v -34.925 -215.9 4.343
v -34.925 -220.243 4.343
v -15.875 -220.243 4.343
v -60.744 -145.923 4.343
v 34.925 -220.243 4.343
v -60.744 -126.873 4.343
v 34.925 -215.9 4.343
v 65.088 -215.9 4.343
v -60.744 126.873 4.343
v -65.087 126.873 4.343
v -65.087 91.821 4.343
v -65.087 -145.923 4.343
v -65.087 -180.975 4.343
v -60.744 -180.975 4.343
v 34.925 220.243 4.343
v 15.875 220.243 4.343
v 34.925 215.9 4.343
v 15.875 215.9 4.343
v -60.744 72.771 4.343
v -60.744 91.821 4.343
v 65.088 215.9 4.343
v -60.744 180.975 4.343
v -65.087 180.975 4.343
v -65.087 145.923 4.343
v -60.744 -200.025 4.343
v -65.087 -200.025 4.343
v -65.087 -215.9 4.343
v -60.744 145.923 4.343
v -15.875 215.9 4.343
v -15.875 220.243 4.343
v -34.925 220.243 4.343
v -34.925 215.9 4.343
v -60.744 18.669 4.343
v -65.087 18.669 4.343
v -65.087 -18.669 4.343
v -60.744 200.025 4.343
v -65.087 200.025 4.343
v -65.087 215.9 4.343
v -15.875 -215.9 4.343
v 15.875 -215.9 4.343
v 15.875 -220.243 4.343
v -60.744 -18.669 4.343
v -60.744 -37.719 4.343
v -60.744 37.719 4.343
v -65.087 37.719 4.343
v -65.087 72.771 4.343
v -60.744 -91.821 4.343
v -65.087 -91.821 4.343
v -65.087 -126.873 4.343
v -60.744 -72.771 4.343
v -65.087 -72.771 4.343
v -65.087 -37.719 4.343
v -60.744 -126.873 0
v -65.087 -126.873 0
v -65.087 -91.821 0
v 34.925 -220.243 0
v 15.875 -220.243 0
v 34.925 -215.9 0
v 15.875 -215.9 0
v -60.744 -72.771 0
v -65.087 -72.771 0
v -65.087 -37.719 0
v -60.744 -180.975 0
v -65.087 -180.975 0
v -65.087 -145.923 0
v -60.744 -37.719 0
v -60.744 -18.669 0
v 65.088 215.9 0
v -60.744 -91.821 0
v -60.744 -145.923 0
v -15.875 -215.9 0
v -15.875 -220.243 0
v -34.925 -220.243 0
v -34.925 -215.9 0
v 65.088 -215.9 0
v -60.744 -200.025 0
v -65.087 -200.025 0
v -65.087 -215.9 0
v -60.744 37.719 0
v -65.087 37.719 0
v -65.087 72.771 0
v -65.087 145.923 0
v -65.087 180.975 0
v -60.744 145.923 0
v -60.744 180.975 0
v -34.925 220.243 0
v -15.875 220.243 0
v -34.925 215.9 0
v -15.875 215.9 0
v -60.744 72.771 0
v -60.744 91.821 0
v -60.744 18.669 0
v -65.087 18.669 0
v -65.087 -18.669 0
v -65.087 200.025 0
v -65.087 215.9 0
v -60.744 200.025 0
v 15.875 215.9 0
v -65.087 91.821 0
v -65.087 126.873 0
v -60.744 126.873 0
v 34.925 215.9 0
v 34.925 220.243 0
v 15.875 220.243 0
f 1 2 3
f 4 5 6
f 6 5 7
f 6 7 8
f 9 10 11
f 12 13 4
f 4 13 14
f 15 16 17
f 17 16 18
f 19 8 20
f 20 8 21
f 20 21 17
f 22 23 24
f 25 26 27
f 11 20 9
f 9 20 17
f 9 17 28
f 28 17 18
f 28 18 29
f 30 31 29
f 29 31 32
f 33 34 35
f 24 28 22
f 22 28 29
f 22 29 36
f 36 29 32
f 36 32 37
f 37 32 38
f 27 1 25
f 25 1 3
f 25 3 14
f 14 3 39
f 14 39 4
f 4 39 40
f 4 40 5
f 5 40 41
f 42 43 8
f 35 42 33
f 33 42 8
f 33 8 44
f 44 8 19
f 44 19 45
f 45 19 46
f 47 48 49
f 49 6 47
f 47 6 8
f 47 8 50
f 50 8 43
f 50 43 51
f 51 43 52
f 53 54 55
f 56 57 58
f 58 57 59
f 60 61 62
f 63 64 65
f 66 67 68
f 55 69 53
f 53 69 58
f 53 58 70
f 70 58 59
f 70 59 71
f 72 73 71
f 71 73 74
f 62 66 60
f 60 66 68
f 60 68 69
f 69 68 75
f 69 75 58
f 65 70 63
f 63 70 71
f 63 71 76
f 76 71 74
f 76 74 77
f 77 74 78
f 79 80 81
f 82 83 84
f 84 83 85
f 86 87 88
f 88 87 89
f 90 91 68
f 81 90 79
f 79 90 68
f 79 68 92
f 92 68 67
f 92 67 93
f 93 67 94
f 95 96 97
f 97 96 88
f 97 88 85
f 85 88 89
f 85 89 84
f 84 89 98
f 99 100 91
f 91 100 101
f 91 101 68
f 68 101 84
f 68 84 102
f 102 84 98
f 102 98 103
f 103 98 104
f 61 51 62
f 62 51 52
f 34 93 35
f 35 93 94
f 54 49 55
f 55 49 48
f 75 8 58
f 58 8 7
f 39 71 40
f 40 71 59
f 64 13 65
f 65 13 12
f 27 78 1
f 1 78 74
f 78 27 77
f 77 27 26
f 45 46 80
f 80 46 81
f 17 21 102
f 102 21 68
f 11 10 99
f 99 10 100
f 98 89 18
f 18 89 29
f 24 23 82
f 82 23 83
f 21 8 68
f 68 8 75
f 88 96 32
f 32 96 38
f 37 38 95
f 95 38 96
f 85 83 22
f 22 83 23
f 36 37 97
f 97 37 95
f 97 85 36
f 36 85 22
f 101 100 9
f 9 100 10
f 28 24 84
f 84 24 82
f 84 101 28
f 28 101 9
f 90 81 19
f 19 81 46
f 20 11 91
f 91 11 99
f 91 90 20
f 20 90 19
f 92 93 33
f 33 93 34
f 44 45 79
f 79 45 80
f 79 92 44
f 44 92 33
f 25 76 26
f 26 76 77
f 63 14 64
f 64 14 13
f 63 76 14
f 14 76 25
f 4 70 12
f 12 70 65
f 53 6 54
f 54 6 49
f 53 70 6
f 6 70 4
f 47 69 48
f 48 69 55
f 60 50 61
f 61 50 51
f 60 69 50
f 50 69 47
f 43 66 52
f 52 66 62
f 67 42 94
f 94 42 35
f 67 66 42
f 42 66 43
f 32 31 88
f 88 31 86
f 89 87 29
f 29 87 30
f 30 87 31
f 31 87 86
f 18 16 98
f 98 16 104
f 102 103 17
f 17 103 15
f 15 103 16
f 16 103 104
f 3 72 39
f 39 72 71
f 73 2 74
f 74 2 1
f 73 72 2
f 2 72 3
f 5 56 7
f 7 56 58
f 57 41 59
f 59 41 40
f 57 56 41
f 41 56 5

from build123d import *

# Parameters (mm, degrees)
SKETCH1_W           = 130.175
SKETCH1_H           = 431.8
BOSS_EXTRUDE1_DEPTH = 4.3434
SKETCH2_W           = 8.6868
SKETCH2_H           = 19.05
SKETCH2_W_2         = 19.05
SKETCH2_H_2         = 8.6868
CUT_EXTRUDE1_DEPTH  = 226.539481643
SKETCH3_W           = 19.05
SKETCH3_H           = 8.6868
BOSS_EXTRUDE2_DEPTH = 4.3434


with BuildPart() as part:
    # Sketch1 → Boss-Extrude1 (new body)
    with BuildSketch(Plane.XY):
        Rectangle(SKETCH1_W, SKETCH1_H)
    extrude(amount=BOSS_EXTRUDE1_DEPTH)

    # Sketch2 → Cut-Extrude1 (cut, through all)
    with BuildSketch(Plane.XY.offset(4.3434)):
        with Locations((-65.0875, 190.5)):
            Rectangle(SKETCH2_W, SKETCH2_H)
        with Locations((-25.4, 215.9)):
            Rectangle(SKETCH2_W_2, SKETCH2_H_2)
        with Locations((25.4, 215.9)):
            Rectangle(SKETCH2_W_2, SKETCH2_H_2)
        with Locations((-65.0875, 136.398)):
            Rectangle(SKETCH2_W, SKETCH2_H)
        with Locations((-65.0875, 82.296)):
            Rectangle(SKETCH2_W, SKETCH2_H)
        with Locations((-65.0875, 28.194)):
            Rectangle(SKETCH2_W, SKETCH2_H)
    cut_extrude1 = extrude(amount=-CUT_EXTRUDE1_DEPTH, mode=Mode.SUBTRACT)

    # Mirror1: Cut-Extrude1 across plane
    add(cut_extrude1.mirror(Plane.ZX), mode=Mode.SUBTRACT)

    # Sketch3 → Boss-Extrude2 (add)
    with BuildSketch(Plane.XY):
        with Locations((-25.4, 215.9)):
            Rectangle(SKETCH3_W, SKETCH3_H)
        with Locations((25.4, 215.9)):
            Rectangle(SKETCH3_W, SKETCH3_H)
    boss_extrude2 = extrude(amount=BOSS_EXTRUDE2_DEPTH)

    # Mirror2: Boss-Extrude2 across plane
    add(boss_extrude2.mirror(Plane.ZX))


solid = part.part
